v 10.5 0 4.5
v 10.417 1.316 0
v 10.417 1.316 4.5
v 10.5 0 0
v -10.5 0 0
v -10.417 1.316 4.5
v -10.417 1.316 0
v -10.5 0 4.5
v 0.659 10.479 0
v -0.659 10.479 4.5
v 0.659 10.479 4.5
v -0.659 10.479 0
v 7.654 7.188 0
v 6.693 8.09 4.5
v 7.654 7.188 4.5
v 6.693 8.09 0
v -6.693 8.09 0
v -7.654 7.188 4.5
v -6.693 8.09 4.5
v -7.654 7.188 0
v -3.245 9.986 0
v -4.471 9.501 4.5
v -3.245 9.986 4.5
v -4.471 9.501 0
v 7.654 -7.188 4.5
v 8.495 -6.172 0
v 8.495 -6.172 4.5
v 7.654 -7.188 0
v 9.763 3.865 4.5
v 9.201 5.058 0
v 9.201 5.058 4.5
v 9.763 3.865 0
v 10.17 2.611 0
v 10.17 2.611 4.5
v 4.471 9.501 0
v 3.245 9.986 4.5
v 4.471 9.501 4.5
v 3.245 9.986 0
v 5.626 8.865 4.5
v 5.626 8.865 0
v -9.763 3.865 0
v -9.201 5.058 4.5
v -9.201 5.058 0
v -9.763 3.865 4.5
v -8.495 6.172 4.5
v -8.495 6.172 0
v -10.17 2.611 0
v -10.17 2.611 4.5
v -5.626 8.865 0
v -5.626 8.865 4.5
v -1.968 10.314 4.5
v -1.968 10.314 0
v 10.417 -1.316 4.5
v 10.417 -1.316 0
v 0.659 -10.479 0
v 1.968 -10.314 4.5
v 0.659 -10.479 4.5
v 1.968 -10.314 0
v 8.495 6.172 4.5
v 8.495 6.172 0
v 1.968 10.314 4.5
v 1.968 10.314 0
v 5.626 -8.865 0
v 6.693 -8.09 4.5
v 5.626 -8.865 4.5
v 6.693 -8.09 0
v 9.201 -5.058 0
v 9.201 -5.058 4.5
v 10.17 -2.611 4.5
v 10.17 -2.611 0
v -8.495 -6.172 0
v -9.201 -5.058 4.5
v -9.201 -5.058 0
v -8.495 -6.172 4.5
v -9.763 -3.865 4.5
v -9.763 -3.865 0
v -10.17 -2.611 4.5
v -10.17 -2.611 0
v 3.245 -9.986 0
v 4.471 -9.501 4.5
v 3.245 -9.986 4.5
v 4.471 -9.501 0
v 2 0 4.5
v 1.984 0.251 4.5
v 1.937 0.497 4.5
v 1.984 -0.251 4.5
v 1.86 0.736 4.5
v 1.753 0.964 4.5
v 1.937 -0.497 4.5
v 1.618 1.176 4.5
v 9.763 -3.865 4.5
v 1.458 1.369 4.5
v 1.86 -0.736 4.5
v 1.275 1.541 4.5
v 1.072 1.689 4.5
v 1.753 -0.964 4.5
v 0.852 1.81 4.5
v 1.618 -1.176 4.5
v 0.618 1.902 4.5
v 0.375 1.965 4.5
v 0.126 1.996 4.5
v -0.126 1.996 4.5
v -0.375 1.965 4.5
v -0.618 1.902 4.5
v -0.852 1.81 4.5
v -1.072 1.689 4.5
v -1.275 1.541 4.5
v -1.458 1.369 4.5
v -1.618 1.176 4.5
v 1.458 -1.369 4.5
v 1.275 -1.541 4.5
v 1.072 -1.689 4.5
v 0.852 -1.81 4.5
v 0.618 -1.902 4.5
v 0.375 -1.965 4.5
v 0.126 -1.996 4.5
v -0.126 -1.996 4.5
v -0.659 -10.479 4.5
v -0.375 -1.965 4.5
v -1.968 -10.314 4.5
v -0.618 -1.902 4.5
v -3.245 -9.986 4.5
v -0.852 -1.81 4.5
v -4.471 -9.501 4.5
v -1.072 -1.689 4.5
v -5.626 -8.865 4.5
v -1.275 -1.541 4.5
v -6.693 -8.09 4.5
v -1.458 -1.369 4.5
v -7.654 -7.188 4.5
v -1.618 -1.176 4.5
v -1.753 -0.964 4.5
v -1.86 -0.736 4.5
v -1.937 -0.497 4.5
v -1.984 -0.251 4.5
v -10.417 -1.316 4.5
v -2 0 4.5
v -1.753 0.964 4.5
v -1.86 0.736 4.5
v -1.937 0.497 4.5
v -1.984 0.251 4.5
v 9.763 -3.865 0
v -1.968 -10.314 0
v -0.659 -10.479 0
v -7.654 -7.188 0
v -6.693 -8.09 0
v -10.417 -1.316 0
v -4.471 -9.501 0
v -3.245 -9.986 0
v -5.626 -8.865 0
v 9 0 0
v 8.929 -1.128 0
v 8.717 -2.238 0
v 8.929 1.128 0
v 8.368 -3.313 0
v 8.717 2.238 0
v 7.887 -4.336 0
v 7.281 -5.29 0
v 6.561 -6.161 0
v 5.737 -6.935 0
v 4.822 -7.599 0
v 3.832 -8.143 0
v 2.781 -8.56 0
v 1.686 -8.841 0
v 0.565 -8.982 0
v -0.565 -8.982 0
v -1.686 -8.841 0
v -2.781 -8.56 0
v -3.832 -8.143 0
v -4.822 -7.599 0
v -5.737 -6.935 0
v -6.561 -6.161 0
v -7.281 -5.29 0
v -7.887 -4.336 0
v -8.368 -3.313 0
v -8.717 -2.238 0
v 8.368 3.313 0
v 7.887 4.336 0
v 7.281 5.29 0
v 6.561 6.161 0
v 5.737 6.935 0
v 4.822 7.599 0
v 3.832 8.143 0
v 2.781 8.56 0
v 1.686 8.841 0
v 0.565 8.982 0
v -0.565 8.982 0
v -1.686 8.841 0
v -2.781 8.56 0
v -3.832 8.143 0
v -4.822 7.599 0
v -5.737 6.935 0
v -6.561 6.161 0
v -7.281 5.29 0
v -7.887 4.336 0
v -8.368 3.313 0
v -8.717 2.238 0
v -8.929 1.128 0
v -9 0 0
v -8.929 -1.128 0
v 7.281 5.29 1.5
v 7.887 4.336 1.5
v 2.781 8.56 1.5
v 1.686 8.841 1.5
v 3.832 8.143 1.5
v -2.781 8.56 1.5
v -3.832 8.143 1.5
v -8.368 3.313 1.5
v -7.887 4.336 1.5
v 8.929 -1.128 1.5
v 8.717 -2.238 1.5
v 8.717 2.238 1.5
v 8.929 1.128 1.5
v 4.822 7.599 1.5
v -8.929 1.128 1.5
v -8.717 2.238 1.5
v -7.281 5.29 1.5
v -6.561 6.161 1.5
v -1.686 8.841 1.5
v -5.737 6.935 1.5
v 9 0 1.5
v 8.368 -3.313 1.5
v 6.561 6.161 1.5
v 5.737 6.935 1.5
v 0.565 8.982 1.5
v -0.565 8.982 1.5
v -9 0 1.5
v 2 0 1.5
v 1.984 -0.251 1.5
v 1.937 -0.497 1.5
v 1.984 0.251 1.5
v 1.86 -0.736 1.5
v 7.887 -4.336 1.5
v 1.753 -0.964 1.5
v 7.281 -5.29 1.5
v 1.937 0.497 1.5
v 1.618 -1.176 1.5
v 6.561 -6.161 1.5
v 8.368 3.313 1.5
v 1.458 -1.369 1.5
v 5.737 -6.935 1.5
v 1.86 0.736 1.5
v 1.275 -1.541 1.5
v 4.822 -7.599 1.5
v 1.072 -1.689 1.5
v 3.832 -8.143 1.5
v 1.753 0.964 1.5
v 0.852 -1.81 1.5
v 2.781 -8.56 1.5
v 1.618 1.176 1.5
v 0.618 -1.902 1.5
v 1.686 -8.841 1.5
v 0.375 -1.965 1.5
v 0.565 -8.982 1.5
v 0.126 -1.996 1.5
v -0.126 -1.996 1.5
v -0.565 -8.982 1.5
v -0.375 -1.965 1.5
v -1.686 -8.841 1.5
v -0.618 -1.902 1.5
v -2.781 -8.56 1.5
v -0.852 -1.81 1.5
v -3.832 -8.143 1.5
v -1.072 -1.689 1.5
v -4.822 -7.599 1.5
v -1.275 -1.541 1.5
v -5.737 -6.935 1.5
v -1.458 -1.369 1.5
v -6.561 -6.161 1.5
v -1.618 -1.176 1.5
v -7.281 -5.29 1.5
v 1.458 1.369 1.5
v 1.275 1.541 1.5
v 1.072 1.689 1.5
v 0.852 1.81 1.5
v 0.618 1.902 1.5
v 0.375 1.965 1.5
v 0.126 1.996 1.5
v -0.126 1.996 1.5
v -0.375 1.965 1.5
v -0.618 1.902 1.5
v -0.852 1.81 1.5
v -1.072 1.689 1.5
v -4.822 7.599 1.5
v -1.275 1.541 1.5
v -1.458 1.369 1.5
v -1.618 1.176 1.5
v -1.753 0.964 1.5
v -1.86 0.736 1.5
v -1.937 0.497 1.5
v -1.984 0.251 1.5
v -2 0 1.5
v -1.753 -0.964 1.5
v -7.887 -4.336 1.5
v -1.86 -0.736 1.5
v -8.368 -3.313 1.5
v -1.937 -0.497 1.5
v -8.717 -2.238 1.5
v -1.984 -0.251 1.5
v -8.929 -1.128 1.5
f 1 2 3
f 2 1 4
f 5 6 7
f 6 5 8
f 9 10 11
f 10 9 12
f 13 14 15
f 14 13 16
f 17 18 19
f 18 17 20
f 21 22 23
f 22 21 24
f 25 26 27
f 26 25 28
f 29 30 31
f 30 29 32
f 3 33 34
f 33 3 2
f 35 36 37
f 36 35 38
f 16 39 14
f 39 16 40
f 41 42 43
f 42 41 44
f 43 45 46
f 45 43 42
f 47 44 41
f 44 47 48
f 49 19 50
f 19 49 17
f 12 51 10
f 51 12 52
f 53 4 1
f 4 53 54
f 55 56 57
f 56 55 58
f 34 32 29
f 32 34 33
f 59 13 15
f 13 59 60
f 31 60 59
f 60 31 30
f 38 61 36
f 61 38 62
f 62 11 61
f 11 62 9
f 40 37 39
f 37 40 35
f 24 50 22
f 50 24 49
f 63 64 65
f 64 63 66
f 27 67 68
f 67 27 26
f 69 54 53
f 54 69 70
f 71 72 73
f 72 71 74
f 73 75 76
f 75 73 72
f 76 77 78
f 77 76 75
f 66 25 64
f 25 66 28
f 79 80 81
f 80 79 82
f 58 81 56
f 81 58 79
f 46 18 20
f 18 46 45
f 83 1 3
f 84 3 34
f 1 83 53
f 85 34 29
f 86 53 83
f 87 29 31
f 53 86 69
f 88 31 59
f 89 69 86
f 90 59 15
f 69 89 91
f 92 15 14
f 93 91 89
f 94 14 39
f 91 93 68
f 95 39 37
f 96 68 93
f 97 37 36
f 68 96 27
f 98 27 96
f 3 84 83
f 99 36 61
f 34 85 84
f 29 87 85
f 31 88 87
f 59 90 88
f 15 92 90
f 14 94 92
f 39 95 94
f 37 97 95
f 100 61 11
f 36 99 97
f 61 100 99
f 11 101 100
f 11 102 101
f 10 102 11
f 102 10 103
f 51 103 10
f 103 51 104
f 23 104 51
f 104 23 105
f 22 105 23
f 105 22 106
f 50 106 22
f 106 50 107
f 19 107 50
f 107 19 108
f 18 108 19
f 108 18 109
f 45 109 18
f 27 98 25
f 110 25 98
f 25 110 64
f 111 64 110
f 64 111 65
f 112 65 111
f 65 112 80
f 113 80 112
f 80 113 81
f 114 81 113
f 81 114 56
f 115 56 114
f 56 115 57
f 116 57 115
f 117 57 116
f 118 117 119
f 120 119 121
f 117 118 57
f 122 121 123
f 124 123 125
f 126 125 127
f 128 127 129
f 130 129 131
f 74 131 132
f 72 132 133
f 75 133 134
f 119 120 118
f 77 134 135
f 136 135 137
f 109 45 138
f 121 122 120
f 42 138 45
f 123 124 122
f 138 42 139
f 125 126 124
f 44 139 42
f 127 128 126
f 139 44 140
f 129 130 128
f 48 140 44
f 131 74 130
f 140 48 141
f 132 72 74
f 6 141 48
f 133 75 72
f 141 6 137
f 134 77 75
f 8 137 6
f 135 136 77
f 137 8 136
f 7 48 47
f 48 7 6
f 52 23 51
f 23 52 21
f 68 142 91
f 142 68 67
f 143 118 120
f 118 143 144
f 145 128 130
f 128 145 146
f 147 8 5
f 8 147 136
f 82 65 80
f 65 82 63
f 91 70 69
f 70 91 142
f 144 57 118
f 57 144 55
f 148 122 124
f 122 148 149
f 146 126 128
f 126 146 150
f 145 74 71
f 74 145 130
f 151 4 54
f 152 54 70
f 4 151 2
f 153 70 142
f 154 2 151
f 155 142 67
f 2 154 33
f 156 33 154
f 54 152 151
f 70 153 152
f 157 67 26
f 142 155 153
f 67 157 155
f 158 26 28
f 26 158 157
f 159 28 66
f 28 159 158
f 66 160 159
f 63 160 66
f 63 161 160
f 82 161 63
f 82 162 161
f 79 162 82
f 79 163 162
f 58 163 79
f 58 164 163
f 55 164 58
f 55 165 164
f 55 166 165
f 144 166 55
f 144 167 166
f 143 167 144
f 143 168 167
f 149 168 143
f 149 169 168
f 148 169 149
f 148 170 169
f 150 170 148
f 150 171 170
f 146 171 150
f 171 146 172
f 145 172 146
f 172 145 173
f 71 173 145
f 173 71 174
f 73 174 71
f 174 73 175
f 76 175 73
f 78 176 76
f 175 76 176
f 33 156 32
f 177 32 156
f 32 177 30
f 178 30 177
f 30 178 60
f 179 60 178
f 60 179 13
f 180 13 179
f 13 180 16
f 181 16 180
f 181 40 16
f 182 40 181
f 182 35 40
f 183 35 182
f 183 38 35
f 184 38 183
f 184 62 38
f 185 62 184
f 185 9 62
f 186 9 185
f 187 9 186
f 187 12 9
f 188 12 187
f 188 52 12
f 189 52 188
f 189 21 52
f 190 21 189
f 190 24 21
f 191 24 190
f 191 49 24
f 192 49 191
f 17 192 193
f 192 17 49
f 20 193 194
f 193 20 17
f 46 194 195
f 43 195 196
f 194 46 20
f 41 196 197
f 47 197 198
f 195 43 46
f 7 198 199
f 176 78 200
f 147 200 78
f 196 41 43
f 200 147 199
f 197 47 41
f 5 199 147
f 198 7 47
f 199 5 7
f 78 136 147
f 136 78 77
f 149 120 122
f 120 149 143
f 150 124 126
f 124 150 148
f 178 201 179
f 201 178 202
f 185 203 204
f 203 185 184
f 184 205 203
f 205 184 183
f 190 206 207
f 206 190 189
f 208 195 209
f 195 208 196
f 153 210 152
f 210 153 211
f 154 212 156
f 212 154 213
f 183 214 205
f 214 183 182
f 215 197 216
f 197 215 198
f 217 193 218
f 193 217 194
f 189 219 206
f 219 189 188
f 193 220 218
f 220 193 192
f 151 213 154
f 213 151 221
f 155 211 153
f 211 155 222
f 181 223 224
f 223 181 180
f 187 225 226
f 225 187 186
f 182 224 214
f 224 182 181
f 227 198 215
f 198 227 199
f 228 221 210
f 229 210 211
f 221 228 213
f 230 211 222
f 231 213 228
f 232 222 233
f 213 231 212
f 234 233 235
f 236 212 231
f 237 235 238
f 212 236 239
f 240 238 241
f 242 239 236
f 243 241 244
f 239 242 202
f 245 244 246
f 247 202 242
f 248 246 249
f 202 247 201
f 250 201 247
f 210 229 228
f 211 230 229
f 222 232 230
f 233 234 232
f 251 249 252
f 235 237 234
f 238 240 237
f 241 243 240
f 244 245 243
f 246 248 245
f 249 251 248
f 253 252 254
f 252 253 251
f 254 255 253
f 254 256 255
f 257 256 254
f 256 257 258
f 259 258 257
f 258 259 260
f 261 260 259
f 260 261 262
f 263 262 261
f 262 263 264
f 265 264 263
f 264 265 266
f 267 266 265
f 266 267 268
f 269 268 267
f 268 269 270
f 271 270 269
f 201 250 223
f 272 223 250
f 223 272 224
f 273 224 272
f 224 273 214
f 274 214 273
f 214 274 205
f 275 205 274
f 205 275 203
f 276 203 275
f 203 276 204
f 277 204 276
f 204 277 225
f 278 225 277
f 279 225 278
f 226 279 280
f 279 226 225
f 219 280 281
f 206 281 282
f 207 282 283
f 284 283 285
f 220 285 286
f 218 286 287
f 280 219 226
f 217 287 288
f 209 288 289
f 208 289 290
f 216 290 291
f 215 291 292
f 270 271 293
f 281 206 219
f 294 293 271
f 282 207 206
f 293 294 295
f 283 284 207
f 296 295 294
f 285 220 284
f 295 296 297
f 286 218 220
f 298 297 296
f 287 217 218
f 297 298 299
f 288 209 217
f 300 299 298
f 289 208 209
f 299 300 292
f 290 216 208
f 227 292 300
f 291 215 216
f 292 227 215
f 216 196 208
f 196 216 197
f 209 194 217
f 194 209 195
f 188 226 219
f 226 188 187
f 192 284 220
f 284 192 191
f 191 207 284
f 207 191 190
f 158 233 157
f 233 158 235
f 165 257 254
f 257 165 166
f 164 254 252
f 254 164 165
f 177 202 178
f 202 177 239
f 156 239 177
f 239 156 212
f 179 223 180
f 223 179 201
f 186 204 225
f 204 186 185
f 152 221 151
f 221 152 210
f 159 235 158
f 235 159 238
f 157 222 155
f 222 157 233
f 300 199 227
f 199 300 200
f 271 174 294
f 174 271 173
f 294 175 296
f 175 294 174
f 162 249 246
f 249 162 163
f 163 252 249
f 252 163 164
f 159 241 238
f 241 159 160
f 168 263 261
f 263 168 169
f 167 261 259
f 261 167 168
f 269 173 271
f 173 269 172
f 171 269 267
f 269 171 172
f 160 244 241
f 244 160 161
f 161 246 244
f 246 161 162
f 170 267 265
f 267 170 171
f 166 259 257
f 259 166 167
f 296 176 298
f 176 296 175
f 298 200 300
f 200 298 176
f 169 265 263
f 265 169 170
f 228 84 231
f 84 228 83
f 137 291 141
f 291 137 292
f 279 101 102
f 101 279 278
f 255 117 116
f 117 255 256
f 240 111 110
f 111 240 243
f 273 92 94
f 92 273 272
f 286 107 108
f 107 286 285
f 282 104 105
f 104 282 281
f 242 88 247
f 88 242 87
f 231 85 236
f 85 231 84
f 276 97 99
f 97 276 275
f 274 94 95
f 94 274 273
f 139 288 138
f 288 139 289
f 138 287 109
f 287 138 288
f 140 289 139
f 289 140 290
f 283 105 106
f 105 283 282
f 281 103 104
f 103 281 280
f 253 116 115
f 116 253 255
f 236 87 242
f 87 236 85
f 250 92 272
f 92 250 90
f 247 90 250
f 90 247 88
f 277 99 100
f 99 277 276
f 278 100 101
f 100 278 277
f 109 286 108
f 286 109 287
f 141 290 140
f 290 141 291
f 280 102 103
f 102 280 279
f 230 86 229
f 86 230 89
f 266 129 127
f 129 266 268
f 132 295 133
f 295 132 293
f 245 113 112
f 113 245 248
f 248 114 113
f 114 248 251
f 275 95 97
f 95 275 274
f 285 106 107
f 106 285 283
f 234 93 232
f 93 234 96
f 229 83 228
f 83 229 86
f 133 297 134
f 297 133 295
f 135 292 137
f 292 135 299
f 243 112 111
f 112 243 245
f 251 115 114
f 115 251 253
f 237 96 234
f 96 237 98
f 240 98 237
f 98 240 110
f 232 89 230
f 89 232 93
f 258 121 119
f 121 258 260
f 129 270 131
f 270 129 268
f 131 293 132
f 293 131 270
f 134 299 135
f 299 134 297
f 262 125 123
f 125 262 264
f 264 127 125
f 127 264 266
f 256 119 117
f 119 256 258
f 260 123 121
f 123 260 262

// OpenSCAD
//----------------------------------------------------
// ------------ Parameters ------------ 
//----------------------------------------------------
r_out = 9;
r_in = 2;
d_rim = 1.5;

h_rim = 1.5;
h_magnet = 3;


//----------------------------------------------------
// ------------ Modelling ------------ 
//----------------------------------------------------
// outter o-rings

difference(){
    cylinder(h=h_rim+h_magnet, r=r_out+d_rim, center=false,,$fn=50);
    cylinder(h=h_rim, r=r_out, center=false,,$fn=50);
    translate([0,0,h_rim]){
        cylinder(h=h_magnet, r=r_in, center=false,,$fn=50);
    }
}

//module outter_oring_lower() {
//    translate([r2+R,h1+h2,0]){
//        circle(R, $fn=50);
//    };
//};
//module outter_oring_upper() {
//    translate([0,h3,0]){
//        outter_oring_lower();
//    };
//};
//
//// Mounting holes
//module mounting_hole_m3_tall(){
//    cylinder(h=h1+h2+h3+h4+1, r=1.6, center=false,,$fn=50);
//}
//module mounting_hole_m3(){
//    cylinder(h=h1+h2+h3+h4, r=1.6, center=false,,$fn=50);
//}
//
//// ------------ outter hoop (the larger one) ------------ 
//
////// Profiles of the parts of the outter hoop
//// Profile 1 - the bottom one
////      before the subtraction of the o-rings
//module profile_part01() {
//    polygon(points=[[r2+R-dy,0],[r1,0],[r1,hx],[r1-dx,hx], [r2+R,h1+h2],[r2+R-dy,h1+hy],[r2+R-dy,h1]]);
//};
//
//// model of the tooth biting into the oring (parameter d_tooth)
//module profile_part01_tooth() {
//    polygon(points=[[r2+R-R*cos(beta),h1+h2-R*sin(beta)],[r2+R-R*cos(beta)+d_tooth,h1+h2-R*sin(beta)],[r2+R-R*cos(beta)+d_tooth,h1+h2-R],[r2+R-R*cos(beta),h1+h2-R]]);
//}
//
////      after the subtraction of the o-ring
//module profile_part1() {
//    union() {
//        difference() {
//            profile_part01();
//            outter_oring_lower();
//        };
//        profile_part01_tooth();
//    }
//};
//
//// Profile 2 - the middle one
//module profile_part2_half() {
//    polygon(points=[[r1,hx], [r1-dx,hx], [r1-dx-sqrt(d_nevim*d_nevim/2),hx+sqrt(d_nevim*d_nevim/2)],[r1-dx-sqrt(d_nevim*d_nevim/2),hx+sqrt(d_nevim*d_nevim/2)+h_nevim], [r_groove, hx+sqrt(d_nevim*d_nevim/2)+h_nevim+hz],[r_groove, h1+h2+h3/2],[r1,h1+h2+h3/2]]);
//};
//module profile_part2() {
//    union(){
//        profile_part2_half();
//        translate([0,2*(h1+h2+h3/2),0]) {
//            mirror([0,1,0]){
//                color("Cyan") profile_part2_half();
//            };
//        };
//    };
//};
//
//// Profile 3 - the bottom one
////      before the subtraction of the o-rings
//module profile_part03() {
//    polygon(points=[[r1,h1+h2+h3-R*sin(alpha)],[r1-dx,h1+h2+h3-R*sin(alpha)], [r2+R,h1+h2+h3], [r2+R-dy,h1+h2+h3+(R+R_ext)*sin(beta)], [r2+R-dy,h1+h2+h3+h4], [r1,h1+h2+h3+h4]]);
//};
//
//// model of the tooth biting into the oring (parameter d_tooth)
//module profile_part03_tooth() {
//    polygon(points=[[r2+R-R*cos(beta),h1+h2+h3+R*sin(beta)],[r2+R-R*cos(beta)+d_tooth,h1+h2+h3+R*sin(beta)],[r2+R-R*cos(beta)+d_tooth,h1+h2+h3+R],[r2+R-R*cos(beta),h1+h2+h3+R]]);
//}
//
////      after the subtraction of the o-ring
//module profile_part3() {
//    union() {
//        difference() {
//            profile_part03();
//            outter_oring_upper();
//        }
//        profile_part03_tooth();
//    }
//};
//
//
////// Go to 3D
//// Outter mounting holes
//module outter_mounting_holes() {
//    for (i=[1:6]) {
//        rotate([0,0,i*60])
//            translate([0,r1-(r1-r_groove)/2+0.3,0])
//                mounting_hole_m3_tall();
//    };
//};
//
//// Revolve the profiles and subtract the outter mounting holes
//module part1(){
//    union() {
//        difference(){
//            rotate_extrude($fn = 360){
//                profile_part1();
//            };
//            outter_mounting_holes();
//        };
//        base();
//    };
//};
//
//module part2(){
//    difference(){
//        rotate_extrude($fn = 360){
//            profile_part2();
//        };
//        outter_mounting_holes();
//    }
//};
//
//module part3(){
//    difference(){
//        rotate_extrude($fn = 360){
//            profile_part3();
//        };
//        outter_mounting_holes();
//    }
//};
//
////// Test parts
//module part1_test(revolve_angle){
//    union() {
//        difference(){
//            rotate(90-revolve_angle/2) {
//                rotate_extrude(angle=revolve_angle, $fn = 360){
//                    profile_part1();
//                };
//            }
//            outter_mounting_holes();
//        };
//    };
//};
//
//module part2_test(revolve_angle){
//    difference(){
//        rotate(90-revolve_angle/2) {
//            rotate_extrude(angle=revolve_angle, $fn = 360){
//                profile_part2();
//            };
//        }
//        outter_mounting_holes();
//    }
//};
//
//module part3_test(revolve_angle){
//    difference(){
//        rotate(90-revolve_angle/2) {
//            rotate_extrude(angle=revolve_angle, $fn = 360){
//                profile_part3();
//            };
//        }
//        outter_mounting_holes();
//    }
//};
//
//// ------------ The base ------------ 
//// inner mounting holes
//module inner_mounting_holes(){
//    for (i=[1:6]) {
//        rotate([0,0,i*60])
//            translate([0,47/2,0]) {
//                mounting_hole_m3();
//                scale(1.05)
//                    translate([0,0,2])
//                        nut("M3");
//            };
//    }
//
//    // Bldc mounting holes
//    for (i=[1:4]) {
//        rotate([0,0,i*90+45])
//            translate([0, sqrt(2)*14.2/2,0])
//                mounting_hole_m3();
//    }
//    cylinder(h=h1+1, r=5.5, center=false,,$fn=50);
//}
//
//
//module inner_circle_small() {
//    cylinder(h=h1, r=r_in, center=false,,$fn=180);
//}
//
//module inner_circle_large() {
//    cylinder(h=h1, r=r2+R-dy+1, center=false,,$fn=180);
//}
//
//
//// Ribs joining the outter hoop to the inner circle
//// Model one rib
//module bottom_planar_rib() {
//    translate([r_in-d_rib,0,0]){
//        square([d_rib,(r2+R-dy)],false);
//    };
//};
//
//// copy and rotate it four times to get half of the total ribs
//module bottom_planar_4ribs() {
//    for (i=[1:4]) {
//        rotate([0,0,i*90])
//            bottom_planar_rib();
//    }
//};
//
//// mirror the four ribs to get the remaining four
//module bottom_8ribs(){
//    bottom_planar_4ribs();
//    mirror([1,0,0]){
//        bottom_planar_4ribs();
//    };
//};
//
//// extrude all the eight ribs and take the intersetion of the extruded ribs with the larger inner circle (full base)
//module ribs() {
//    intersection(){
//        linear_extrude(height = h1) {
//            bottom_8ribs();
//        };
//        inner_circle_large();
//    };
//};
//
//// Model the base - take union of the ribs, inner circle and subtract the inner mounting holes
//module base() {
//    difference(){
//        union(){
//            ribs();
//            inner_circle_small();
//        }
//        inner_mounting_holes();
//    };
//}
//
//// ------------ Debug outputs ------------ 
////color("Cyan")
////rotate_extrude($fn = 50)
////            profile_part1();
////color("Blue")
////rotate_extrude($fn = 50)
////            profile_part2();
////color("Cyan")
////rotate_extrude($fn = 50)
////            profile_part3();
////
////color("Red"){
////    rotate_extrude($fn = 50)
////    {
////        outter_oring_lower();
////        outter_oring_upper();
////    }
////};
////
////base();
//
////union(){
////    part1();
////    part2();
////    part3();
////};
//
//// ------------ test parts ------------ 
////test_rev_angle = 15;
////part1_test(test_rev_angle);
////part2_test(test_rev_angle);
////part3_test(test_rev_angle);
//            
//// ------------ final outputs ------------ 
//part1();
////part2();
////part3();
//
//
////----------------------------------------------------
//// ------------ Inner hoop (in progress) ------------ 
////----------------------------------------------------
//// module profile_part01_inner() {
////     translate([-r1+r2+r3,0,0])
////         mirror([1,0,0])
////             translate([-r1,0,0]) {
////                 difference(){
////                     profile_part1();
////                     polygon(points=[[r2+R-dy,0],[r1,0],[r1,h1],[r2+R-dy,h1]]);
////                 }
////             }
//// };
//
//
//// module profile_part02_inner() {
////     translate([-r1+r2+r3,0,0])
////         mirror([1,0,0])
////             translate([-r1,0,0]) {
////                 profile_part2();
////             }
//// };
//
//// module profile_part03_inner() {
////     translate([-r1+r2+r3,0,0])
////         mirror([1,0,0])
////             translate([-r1,0,0]) {
////                 profile_part3();
////             }
//// };
//
//// //inner hoop mounting pillar
//// module inner_hoop_pillar() {
////     translate([0,47/2,0]) {
////         difference() {
////             union() {
////                 translate([0,0,h1])
////                     cylinder(h=h2+h3+h4, r=3.2, center=false, $fn=50);
////                 translate([-3.2,0,h1])
////                     cube([2*3.2,2*3.2+20,h2+h3+h4], center=false);
////             }
////             mounting_hole_m3();
////         }
////     }
//// }
//
//// // inner mounting holes
//// module inner_hoop_pillars(){
////     for (i=[1:6]) {
////         rotate([0,0,i*60])
////             inner_hoop_pillar();
////     }
//// }
//
//// //inner_hoop_pillars();
//
//
//// module inner_circle() {
//// rotate_extrude($fn = 200)
////             profile_part01_inner();
//// color("Blue")
//// rotate_extrude($fn = 200)
////             profile_part02_inner();
//// color("Cyan")
//// rotate_extrude($fn = 200)
////             profile_part03_inner();
//// }
//
////profile_part01_inner();
////profile_part02_inner();
////profile_part03_inner();
